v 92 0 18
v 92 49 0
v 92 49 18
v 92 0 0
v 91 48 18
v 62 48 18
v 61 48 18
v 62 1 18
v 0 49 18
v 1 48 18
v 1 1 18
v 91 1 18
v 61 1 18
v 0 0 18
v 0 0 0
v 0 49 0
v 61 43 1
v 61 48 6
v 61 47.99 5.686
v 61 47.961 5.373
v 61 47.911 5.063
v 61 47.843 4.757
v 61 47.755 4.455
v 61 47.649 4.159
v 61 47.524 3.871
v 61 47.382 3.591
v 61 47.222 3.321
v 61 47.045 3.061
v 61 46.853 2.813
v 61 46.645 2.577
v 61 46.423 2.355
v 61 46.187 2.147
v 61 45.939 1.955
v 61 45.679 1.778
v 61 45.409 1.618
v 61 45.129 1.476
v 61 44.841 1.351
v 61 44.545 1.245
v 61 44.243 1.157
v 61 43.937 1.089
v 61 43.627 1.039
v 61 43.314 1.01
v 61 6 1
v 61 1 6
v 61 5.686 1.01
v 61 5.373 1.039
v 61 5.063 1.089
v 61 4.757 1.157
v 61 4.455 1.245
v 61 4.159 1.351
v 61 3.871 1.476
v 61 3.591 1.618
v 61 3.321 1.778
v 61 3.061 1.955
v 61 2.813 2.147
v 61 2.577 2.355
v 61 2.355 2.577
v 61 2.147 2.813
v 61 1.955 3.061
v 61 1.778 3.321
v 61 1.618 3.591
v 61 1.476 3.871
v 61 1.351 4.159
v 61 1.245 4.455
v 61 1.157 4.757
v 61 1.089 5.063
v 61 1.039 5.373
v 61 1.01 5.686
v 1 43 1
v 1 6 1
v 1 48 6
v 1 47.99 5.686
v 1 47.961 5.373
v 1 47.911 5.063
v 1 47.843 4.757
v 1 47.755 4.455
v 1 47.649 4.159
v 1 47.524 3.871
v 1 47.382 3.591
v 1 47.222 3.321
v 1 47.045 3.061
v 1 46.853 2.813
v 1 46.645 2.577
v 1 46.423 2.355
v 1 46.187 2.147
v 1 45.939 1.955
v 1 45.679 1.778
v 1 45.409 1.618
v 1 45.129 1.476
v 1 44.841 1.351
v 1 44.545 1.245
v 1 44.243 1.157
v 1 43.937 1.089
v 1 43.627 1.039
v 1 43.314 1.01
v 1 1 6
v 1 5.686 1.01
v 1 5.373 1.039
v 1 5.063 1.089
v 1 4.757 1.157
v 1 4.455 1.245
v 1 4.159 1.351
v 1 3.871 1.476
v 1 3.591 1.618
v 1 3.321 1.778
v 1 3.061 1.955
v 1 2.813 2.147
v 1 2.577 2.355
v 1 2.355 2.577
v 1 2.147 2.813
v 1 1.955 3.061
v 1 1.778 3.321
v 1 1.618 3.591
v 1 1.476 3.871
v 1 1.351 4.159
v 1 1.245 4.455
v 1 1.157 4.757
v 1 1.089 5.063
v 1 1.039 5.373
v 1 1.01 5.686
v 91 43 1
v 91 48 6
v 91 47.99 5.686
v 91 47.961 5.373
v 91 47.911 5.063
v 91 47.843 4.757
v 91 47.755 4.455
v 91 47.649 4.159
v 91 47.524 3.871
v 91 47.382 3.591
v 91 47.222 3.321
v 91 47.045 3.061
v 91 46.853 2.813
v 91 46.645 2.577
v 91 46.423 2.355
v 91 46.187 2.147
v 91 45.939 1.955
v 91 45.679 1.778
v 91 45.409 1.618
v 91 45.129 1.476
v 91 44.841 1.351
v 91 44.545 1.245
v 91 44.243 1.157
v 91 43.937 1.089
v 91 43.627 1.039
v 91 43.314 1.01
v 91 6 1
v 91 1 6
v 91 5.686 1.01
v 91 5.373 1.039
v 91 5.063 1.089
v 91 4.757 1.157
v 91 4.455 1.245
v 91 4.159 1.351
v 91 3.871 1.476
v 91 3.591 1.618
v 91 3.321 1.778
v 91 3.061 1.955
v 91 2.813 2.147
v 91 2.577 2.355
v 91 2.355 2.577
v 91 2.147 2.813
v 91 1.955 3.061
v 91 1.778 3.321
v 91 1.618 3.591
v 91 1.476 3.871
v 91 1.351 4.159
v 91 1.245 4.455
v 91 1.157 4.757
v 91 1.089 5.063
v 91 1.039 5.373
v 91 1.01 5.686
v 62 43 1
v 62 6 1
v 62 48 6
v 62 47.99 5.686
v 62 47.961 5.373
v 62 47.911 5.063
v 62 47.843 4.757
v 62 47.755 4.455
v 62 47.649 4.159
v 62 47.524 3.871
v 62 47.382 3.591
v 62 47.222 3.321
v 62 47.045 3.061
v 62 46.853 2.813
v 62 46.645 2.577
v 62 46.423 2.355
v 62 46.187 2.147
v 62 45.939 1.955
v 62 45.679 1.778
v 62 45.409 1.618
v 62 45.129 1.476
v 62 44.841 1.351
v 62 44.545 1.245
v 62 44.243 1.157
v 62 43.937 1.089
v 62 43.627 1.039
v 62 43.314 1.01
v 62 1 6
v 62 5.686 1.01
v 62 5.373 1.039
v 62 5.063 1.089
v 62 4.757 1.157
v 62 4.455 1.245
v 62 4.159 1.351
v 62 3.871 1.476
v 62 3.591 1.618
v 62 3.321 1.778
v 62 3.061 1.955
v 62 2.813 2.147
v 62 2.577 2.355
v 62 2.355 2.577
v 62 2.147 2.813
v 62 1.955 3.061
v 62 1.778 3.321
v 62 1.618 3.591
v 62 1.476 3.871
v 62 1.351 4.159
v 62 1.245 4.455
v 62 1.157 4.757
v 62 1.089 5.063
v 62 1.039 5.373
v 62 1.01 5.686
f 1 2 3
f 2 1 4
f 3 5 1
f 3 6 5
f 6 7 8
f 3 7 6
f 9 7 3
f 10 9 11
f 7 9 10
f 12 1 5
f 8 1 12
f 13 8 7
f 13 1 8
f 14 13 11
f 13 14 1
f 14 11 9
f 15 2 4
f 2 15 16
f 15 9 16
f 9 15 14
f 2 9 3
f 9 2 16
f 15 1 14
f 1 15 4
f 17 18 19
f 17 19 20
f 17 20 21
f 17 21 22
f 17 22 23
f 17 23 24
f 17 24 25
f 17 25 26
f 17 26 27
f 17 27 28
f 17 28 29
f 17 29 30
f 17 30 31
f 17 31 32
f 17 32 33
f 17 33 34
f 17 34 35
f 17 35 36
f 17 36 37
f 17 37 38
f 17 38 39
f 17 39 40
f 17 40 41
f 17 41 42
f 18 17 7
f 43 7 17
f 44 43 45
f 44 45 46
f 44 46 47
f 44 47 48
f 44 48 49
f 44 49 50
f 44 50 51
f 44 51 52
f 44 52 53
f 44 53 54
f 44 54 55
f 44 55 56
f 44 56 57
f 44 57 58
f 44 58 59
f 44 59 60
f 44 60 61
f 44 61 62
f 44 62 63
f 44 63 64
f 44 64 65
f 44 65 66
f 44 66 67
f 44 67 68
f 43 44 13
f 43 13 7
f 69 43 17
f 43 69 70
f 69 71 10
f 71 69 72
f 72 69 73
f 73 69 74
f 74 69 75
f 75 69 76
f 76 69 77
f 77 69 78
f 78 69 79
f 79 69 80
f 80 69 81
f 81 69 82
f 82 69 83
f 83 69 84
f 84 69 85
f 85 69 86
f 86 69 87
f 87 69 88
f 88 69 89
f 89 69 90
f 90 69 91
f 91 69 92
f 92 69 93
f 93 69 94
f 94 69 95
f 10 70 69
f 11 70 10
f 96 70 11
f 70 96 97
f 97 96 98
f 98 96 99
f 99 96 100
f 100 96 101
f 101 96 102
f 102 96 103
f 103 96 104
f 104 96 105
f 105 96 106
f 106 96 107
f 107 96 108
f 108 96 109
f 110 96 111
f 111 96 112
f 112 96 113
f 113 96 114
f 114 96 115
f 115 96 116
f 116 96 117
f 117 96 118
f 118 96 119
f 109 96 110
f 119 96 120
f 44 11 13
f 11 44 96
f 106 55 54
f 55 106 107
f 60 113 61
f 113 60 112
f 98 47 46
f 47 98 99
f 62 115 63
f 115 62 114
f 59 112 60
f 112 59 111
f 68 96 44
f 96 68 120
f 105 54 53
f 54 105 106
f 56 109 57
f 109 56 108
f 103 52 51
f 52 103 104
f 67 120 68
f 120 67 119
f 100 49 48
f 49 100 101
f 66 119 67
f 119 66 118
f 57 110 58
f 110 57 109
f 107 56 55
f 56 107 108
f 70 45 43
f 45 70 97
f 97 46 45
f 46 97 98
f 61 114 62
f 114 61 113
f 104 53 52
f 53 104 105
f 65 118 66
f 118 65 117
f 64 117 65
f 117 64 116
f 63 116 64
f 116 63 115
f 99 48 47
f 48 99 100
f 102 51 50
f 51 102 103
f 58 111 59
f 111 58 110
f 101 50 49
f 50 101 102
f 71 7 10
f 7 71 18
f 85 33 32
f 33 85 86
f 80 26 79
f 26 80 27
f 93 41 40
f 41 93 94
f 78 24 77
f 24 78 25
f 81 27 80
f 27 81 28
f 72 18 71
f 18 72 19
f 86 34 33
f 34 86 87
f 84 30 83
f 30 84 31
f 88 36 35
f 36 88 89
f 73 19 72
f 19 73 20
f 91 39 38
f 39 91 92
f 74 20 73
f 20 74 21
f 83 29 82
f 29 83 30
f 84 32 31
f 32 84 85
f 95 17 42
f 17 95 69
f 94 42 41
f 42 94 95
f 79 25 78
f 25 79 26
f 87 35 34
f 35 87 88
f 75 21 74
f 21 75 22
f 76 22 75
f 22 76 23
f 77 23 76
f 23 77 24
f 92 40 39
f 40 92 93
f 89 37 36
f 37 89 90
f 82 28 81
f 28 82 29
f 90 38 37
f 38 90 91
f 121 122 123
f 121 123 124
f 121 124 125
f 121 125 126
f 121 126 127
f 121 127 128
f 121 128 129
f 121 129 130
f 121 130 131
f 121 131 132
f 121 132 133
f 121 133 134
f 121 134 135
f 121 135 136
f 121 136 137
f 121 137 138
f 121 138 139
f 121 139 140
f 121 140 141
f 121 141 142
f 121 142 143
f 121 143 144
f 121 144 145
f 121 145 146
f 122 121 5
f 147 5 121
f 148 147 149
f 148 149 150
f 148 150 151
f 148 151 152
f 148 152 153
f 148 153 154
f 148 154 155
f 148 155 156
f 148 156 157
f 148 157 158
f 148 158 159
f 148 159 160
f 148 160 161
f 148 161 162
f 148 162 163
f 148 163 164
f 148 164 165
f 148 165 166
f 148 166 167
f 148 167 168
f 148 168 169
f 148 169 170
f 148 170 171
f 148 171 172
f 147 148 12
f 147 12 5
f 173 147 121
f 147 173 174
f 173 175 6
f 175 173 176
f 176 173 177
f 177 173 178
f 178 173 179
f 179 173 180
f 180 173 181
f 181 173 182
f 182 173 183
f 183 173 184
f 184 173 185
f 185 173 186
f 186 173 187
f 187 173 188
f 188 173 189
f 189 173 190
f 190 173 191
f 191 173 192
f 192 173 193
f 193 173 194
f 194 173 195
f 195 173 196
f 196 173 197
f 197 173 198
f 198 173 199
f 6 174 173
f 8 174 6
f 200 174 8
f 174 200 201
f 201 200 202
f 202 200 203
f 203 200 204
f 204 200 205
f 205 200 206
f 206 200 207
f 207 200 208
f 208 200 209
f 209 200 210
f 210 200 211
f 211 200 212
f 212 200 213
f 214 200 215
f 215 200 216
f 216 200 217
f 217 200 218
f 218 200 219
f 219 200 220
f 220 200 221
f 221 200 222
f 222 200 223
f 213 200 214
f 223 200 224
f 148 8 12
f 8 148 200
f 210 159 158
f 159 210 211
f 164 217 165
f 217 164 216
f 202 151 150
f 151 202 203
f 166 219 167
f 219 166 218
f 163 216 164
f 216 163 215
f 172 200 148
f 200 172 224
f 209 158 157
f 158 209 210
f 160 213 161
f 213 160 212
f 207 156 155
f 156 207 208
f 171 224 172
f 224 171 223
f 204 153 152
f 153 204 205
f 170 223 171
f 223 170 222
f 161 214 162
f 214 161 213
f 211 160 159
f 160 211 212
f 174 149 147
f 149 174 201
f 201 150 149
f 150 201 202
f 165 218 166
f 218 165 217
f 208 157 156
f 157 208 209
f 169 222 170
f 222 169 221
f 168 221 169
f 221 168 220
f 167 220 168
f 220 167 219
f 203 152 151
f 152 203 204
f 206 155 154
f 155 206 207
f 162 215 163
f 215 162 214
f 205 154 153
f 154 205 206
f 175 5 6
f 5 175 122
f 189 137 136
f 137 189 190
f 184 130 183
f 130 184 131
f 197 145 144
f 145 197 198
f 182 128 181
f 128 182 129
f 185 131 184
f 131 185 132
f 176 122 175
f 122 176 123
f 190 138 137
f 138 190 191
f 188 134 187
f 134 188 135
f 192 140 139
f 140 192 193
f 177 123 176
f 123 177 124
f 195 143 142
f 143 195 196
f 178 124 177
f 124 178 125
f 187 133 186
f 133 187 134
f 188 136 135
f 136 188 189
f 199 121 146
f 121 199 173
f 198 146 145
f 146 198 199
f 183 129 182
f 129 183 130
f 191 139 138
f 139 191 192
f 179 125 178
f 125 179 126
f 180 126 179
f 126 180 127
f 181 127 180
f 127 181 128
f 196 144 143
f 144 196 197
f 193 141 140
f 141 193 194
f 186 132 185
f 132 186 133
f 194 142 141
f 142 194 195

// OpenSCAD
include <boardgame_insert_toolkit_lib.2.scad>;

// determines whether lids are output.
g_b_print_lid = true;

// determines whether boxes are output.
g_b_print_box = true; 

// Focus on one box
g_isolated_print_box = ""; 

// Used to visualize how all of the boxes fit together. 
g_b_visualization = false;          
        
// this is the outer wall thickness. 
//Default = 1.5mm
g_wall_thickness = 1.0;

// The tolerance value is extra space put between planes of the lid and box that fit together.
// Increase the tolerance to loosen the fit and decrease it to tighten it.
//
// Note that the tolerance is applied exclusively to the lid.
// So if the lid is too tight or too loose, change this value ( up for looser fit, down for tighter fit ) and 
// you only need to reprint the lid.
// 
// The exception is the stackable box, where the bottom of the box is the lid of the box below,
// in which case the tolerance also affects that box bottom.
//
g_tolerance = 0.15;

// This adjusts the position of the lid detents downward. 
// The larger the value, the bigger the gap between the lid and the box.
g_tolerance_detents_pos = 0.1;

aw_size_x = 92.0;
aw_size_y = 49.0;
aw_size_z = 18.0;


data =
  [
    [
      "simple box",
      [
        [ BOX_SIZE_XYZ, [aw_size_x, aw_size_y, aw_size_z] ],
        [ BOX_NO_LID_B, t],
        [
          BOX_COMPONENT,
          [
            [
              CMP_COMPARTMENT_SIZE_XYZ,
              [
                60,
                (aw_size_y - 2.0),
                aw_size_z - g_wall_thickness
              ]
            ],
            [ CMP_NUM_COMPARTMENTS_XY, [1, 1] ],
            [ POSITION_XY, [0, 0] ],
            [ CMP_CUTOUT_SIDES_4B,   [f,f,f,f]],
            //[ CMP_CUTOUT_DEPTH_PCT,  20],
            //[ CMP_CUTOUT_WIDTH_PCT,  50],
            //[ CMP_CUTOUT_HEIGHT_PCT, 100], 
            [ CMP_SHAPE, FILLET ],
            [ CMP_SHAPE_ROTATED_B, t ],
            [ CMP_FILLET_RADIUS, 5.0 ],
          ]
        ],
        [
          BOX_COMPONENT,
          [
            [
              CMP_COMPARTMENT_SIZE_XYZ,
              [
                29.0,
                (aw_size_y - 2.0),
                aw_size_z - g_wall_thickness
              ]
            ],
            [ CMP_NUM_COMPARTMENTS_XY, [1, 1] ],
            [ POSITION_XY, [61, 0] ],
            [ CMP_CUTOUT_SIDES_4B,   [f,f,f,f]],
            //[ CMP_CUTOUT_DEPTH_PCT,  20],
            //[ CMP_CUTOUT_WIDTH_PCT,  50],
            //[ CMP_CUTOUT_HEIGHT_PCT, 100], 
            [ CMP_SHAPE, FILLET ],
            [ CMP_SHAPE_ROTATED_B, t ],
            [ CMP_FILLET_RADIUS, 5.0 ],
          ]
        ],
      ]
    ]
  ];

MakeAll();
